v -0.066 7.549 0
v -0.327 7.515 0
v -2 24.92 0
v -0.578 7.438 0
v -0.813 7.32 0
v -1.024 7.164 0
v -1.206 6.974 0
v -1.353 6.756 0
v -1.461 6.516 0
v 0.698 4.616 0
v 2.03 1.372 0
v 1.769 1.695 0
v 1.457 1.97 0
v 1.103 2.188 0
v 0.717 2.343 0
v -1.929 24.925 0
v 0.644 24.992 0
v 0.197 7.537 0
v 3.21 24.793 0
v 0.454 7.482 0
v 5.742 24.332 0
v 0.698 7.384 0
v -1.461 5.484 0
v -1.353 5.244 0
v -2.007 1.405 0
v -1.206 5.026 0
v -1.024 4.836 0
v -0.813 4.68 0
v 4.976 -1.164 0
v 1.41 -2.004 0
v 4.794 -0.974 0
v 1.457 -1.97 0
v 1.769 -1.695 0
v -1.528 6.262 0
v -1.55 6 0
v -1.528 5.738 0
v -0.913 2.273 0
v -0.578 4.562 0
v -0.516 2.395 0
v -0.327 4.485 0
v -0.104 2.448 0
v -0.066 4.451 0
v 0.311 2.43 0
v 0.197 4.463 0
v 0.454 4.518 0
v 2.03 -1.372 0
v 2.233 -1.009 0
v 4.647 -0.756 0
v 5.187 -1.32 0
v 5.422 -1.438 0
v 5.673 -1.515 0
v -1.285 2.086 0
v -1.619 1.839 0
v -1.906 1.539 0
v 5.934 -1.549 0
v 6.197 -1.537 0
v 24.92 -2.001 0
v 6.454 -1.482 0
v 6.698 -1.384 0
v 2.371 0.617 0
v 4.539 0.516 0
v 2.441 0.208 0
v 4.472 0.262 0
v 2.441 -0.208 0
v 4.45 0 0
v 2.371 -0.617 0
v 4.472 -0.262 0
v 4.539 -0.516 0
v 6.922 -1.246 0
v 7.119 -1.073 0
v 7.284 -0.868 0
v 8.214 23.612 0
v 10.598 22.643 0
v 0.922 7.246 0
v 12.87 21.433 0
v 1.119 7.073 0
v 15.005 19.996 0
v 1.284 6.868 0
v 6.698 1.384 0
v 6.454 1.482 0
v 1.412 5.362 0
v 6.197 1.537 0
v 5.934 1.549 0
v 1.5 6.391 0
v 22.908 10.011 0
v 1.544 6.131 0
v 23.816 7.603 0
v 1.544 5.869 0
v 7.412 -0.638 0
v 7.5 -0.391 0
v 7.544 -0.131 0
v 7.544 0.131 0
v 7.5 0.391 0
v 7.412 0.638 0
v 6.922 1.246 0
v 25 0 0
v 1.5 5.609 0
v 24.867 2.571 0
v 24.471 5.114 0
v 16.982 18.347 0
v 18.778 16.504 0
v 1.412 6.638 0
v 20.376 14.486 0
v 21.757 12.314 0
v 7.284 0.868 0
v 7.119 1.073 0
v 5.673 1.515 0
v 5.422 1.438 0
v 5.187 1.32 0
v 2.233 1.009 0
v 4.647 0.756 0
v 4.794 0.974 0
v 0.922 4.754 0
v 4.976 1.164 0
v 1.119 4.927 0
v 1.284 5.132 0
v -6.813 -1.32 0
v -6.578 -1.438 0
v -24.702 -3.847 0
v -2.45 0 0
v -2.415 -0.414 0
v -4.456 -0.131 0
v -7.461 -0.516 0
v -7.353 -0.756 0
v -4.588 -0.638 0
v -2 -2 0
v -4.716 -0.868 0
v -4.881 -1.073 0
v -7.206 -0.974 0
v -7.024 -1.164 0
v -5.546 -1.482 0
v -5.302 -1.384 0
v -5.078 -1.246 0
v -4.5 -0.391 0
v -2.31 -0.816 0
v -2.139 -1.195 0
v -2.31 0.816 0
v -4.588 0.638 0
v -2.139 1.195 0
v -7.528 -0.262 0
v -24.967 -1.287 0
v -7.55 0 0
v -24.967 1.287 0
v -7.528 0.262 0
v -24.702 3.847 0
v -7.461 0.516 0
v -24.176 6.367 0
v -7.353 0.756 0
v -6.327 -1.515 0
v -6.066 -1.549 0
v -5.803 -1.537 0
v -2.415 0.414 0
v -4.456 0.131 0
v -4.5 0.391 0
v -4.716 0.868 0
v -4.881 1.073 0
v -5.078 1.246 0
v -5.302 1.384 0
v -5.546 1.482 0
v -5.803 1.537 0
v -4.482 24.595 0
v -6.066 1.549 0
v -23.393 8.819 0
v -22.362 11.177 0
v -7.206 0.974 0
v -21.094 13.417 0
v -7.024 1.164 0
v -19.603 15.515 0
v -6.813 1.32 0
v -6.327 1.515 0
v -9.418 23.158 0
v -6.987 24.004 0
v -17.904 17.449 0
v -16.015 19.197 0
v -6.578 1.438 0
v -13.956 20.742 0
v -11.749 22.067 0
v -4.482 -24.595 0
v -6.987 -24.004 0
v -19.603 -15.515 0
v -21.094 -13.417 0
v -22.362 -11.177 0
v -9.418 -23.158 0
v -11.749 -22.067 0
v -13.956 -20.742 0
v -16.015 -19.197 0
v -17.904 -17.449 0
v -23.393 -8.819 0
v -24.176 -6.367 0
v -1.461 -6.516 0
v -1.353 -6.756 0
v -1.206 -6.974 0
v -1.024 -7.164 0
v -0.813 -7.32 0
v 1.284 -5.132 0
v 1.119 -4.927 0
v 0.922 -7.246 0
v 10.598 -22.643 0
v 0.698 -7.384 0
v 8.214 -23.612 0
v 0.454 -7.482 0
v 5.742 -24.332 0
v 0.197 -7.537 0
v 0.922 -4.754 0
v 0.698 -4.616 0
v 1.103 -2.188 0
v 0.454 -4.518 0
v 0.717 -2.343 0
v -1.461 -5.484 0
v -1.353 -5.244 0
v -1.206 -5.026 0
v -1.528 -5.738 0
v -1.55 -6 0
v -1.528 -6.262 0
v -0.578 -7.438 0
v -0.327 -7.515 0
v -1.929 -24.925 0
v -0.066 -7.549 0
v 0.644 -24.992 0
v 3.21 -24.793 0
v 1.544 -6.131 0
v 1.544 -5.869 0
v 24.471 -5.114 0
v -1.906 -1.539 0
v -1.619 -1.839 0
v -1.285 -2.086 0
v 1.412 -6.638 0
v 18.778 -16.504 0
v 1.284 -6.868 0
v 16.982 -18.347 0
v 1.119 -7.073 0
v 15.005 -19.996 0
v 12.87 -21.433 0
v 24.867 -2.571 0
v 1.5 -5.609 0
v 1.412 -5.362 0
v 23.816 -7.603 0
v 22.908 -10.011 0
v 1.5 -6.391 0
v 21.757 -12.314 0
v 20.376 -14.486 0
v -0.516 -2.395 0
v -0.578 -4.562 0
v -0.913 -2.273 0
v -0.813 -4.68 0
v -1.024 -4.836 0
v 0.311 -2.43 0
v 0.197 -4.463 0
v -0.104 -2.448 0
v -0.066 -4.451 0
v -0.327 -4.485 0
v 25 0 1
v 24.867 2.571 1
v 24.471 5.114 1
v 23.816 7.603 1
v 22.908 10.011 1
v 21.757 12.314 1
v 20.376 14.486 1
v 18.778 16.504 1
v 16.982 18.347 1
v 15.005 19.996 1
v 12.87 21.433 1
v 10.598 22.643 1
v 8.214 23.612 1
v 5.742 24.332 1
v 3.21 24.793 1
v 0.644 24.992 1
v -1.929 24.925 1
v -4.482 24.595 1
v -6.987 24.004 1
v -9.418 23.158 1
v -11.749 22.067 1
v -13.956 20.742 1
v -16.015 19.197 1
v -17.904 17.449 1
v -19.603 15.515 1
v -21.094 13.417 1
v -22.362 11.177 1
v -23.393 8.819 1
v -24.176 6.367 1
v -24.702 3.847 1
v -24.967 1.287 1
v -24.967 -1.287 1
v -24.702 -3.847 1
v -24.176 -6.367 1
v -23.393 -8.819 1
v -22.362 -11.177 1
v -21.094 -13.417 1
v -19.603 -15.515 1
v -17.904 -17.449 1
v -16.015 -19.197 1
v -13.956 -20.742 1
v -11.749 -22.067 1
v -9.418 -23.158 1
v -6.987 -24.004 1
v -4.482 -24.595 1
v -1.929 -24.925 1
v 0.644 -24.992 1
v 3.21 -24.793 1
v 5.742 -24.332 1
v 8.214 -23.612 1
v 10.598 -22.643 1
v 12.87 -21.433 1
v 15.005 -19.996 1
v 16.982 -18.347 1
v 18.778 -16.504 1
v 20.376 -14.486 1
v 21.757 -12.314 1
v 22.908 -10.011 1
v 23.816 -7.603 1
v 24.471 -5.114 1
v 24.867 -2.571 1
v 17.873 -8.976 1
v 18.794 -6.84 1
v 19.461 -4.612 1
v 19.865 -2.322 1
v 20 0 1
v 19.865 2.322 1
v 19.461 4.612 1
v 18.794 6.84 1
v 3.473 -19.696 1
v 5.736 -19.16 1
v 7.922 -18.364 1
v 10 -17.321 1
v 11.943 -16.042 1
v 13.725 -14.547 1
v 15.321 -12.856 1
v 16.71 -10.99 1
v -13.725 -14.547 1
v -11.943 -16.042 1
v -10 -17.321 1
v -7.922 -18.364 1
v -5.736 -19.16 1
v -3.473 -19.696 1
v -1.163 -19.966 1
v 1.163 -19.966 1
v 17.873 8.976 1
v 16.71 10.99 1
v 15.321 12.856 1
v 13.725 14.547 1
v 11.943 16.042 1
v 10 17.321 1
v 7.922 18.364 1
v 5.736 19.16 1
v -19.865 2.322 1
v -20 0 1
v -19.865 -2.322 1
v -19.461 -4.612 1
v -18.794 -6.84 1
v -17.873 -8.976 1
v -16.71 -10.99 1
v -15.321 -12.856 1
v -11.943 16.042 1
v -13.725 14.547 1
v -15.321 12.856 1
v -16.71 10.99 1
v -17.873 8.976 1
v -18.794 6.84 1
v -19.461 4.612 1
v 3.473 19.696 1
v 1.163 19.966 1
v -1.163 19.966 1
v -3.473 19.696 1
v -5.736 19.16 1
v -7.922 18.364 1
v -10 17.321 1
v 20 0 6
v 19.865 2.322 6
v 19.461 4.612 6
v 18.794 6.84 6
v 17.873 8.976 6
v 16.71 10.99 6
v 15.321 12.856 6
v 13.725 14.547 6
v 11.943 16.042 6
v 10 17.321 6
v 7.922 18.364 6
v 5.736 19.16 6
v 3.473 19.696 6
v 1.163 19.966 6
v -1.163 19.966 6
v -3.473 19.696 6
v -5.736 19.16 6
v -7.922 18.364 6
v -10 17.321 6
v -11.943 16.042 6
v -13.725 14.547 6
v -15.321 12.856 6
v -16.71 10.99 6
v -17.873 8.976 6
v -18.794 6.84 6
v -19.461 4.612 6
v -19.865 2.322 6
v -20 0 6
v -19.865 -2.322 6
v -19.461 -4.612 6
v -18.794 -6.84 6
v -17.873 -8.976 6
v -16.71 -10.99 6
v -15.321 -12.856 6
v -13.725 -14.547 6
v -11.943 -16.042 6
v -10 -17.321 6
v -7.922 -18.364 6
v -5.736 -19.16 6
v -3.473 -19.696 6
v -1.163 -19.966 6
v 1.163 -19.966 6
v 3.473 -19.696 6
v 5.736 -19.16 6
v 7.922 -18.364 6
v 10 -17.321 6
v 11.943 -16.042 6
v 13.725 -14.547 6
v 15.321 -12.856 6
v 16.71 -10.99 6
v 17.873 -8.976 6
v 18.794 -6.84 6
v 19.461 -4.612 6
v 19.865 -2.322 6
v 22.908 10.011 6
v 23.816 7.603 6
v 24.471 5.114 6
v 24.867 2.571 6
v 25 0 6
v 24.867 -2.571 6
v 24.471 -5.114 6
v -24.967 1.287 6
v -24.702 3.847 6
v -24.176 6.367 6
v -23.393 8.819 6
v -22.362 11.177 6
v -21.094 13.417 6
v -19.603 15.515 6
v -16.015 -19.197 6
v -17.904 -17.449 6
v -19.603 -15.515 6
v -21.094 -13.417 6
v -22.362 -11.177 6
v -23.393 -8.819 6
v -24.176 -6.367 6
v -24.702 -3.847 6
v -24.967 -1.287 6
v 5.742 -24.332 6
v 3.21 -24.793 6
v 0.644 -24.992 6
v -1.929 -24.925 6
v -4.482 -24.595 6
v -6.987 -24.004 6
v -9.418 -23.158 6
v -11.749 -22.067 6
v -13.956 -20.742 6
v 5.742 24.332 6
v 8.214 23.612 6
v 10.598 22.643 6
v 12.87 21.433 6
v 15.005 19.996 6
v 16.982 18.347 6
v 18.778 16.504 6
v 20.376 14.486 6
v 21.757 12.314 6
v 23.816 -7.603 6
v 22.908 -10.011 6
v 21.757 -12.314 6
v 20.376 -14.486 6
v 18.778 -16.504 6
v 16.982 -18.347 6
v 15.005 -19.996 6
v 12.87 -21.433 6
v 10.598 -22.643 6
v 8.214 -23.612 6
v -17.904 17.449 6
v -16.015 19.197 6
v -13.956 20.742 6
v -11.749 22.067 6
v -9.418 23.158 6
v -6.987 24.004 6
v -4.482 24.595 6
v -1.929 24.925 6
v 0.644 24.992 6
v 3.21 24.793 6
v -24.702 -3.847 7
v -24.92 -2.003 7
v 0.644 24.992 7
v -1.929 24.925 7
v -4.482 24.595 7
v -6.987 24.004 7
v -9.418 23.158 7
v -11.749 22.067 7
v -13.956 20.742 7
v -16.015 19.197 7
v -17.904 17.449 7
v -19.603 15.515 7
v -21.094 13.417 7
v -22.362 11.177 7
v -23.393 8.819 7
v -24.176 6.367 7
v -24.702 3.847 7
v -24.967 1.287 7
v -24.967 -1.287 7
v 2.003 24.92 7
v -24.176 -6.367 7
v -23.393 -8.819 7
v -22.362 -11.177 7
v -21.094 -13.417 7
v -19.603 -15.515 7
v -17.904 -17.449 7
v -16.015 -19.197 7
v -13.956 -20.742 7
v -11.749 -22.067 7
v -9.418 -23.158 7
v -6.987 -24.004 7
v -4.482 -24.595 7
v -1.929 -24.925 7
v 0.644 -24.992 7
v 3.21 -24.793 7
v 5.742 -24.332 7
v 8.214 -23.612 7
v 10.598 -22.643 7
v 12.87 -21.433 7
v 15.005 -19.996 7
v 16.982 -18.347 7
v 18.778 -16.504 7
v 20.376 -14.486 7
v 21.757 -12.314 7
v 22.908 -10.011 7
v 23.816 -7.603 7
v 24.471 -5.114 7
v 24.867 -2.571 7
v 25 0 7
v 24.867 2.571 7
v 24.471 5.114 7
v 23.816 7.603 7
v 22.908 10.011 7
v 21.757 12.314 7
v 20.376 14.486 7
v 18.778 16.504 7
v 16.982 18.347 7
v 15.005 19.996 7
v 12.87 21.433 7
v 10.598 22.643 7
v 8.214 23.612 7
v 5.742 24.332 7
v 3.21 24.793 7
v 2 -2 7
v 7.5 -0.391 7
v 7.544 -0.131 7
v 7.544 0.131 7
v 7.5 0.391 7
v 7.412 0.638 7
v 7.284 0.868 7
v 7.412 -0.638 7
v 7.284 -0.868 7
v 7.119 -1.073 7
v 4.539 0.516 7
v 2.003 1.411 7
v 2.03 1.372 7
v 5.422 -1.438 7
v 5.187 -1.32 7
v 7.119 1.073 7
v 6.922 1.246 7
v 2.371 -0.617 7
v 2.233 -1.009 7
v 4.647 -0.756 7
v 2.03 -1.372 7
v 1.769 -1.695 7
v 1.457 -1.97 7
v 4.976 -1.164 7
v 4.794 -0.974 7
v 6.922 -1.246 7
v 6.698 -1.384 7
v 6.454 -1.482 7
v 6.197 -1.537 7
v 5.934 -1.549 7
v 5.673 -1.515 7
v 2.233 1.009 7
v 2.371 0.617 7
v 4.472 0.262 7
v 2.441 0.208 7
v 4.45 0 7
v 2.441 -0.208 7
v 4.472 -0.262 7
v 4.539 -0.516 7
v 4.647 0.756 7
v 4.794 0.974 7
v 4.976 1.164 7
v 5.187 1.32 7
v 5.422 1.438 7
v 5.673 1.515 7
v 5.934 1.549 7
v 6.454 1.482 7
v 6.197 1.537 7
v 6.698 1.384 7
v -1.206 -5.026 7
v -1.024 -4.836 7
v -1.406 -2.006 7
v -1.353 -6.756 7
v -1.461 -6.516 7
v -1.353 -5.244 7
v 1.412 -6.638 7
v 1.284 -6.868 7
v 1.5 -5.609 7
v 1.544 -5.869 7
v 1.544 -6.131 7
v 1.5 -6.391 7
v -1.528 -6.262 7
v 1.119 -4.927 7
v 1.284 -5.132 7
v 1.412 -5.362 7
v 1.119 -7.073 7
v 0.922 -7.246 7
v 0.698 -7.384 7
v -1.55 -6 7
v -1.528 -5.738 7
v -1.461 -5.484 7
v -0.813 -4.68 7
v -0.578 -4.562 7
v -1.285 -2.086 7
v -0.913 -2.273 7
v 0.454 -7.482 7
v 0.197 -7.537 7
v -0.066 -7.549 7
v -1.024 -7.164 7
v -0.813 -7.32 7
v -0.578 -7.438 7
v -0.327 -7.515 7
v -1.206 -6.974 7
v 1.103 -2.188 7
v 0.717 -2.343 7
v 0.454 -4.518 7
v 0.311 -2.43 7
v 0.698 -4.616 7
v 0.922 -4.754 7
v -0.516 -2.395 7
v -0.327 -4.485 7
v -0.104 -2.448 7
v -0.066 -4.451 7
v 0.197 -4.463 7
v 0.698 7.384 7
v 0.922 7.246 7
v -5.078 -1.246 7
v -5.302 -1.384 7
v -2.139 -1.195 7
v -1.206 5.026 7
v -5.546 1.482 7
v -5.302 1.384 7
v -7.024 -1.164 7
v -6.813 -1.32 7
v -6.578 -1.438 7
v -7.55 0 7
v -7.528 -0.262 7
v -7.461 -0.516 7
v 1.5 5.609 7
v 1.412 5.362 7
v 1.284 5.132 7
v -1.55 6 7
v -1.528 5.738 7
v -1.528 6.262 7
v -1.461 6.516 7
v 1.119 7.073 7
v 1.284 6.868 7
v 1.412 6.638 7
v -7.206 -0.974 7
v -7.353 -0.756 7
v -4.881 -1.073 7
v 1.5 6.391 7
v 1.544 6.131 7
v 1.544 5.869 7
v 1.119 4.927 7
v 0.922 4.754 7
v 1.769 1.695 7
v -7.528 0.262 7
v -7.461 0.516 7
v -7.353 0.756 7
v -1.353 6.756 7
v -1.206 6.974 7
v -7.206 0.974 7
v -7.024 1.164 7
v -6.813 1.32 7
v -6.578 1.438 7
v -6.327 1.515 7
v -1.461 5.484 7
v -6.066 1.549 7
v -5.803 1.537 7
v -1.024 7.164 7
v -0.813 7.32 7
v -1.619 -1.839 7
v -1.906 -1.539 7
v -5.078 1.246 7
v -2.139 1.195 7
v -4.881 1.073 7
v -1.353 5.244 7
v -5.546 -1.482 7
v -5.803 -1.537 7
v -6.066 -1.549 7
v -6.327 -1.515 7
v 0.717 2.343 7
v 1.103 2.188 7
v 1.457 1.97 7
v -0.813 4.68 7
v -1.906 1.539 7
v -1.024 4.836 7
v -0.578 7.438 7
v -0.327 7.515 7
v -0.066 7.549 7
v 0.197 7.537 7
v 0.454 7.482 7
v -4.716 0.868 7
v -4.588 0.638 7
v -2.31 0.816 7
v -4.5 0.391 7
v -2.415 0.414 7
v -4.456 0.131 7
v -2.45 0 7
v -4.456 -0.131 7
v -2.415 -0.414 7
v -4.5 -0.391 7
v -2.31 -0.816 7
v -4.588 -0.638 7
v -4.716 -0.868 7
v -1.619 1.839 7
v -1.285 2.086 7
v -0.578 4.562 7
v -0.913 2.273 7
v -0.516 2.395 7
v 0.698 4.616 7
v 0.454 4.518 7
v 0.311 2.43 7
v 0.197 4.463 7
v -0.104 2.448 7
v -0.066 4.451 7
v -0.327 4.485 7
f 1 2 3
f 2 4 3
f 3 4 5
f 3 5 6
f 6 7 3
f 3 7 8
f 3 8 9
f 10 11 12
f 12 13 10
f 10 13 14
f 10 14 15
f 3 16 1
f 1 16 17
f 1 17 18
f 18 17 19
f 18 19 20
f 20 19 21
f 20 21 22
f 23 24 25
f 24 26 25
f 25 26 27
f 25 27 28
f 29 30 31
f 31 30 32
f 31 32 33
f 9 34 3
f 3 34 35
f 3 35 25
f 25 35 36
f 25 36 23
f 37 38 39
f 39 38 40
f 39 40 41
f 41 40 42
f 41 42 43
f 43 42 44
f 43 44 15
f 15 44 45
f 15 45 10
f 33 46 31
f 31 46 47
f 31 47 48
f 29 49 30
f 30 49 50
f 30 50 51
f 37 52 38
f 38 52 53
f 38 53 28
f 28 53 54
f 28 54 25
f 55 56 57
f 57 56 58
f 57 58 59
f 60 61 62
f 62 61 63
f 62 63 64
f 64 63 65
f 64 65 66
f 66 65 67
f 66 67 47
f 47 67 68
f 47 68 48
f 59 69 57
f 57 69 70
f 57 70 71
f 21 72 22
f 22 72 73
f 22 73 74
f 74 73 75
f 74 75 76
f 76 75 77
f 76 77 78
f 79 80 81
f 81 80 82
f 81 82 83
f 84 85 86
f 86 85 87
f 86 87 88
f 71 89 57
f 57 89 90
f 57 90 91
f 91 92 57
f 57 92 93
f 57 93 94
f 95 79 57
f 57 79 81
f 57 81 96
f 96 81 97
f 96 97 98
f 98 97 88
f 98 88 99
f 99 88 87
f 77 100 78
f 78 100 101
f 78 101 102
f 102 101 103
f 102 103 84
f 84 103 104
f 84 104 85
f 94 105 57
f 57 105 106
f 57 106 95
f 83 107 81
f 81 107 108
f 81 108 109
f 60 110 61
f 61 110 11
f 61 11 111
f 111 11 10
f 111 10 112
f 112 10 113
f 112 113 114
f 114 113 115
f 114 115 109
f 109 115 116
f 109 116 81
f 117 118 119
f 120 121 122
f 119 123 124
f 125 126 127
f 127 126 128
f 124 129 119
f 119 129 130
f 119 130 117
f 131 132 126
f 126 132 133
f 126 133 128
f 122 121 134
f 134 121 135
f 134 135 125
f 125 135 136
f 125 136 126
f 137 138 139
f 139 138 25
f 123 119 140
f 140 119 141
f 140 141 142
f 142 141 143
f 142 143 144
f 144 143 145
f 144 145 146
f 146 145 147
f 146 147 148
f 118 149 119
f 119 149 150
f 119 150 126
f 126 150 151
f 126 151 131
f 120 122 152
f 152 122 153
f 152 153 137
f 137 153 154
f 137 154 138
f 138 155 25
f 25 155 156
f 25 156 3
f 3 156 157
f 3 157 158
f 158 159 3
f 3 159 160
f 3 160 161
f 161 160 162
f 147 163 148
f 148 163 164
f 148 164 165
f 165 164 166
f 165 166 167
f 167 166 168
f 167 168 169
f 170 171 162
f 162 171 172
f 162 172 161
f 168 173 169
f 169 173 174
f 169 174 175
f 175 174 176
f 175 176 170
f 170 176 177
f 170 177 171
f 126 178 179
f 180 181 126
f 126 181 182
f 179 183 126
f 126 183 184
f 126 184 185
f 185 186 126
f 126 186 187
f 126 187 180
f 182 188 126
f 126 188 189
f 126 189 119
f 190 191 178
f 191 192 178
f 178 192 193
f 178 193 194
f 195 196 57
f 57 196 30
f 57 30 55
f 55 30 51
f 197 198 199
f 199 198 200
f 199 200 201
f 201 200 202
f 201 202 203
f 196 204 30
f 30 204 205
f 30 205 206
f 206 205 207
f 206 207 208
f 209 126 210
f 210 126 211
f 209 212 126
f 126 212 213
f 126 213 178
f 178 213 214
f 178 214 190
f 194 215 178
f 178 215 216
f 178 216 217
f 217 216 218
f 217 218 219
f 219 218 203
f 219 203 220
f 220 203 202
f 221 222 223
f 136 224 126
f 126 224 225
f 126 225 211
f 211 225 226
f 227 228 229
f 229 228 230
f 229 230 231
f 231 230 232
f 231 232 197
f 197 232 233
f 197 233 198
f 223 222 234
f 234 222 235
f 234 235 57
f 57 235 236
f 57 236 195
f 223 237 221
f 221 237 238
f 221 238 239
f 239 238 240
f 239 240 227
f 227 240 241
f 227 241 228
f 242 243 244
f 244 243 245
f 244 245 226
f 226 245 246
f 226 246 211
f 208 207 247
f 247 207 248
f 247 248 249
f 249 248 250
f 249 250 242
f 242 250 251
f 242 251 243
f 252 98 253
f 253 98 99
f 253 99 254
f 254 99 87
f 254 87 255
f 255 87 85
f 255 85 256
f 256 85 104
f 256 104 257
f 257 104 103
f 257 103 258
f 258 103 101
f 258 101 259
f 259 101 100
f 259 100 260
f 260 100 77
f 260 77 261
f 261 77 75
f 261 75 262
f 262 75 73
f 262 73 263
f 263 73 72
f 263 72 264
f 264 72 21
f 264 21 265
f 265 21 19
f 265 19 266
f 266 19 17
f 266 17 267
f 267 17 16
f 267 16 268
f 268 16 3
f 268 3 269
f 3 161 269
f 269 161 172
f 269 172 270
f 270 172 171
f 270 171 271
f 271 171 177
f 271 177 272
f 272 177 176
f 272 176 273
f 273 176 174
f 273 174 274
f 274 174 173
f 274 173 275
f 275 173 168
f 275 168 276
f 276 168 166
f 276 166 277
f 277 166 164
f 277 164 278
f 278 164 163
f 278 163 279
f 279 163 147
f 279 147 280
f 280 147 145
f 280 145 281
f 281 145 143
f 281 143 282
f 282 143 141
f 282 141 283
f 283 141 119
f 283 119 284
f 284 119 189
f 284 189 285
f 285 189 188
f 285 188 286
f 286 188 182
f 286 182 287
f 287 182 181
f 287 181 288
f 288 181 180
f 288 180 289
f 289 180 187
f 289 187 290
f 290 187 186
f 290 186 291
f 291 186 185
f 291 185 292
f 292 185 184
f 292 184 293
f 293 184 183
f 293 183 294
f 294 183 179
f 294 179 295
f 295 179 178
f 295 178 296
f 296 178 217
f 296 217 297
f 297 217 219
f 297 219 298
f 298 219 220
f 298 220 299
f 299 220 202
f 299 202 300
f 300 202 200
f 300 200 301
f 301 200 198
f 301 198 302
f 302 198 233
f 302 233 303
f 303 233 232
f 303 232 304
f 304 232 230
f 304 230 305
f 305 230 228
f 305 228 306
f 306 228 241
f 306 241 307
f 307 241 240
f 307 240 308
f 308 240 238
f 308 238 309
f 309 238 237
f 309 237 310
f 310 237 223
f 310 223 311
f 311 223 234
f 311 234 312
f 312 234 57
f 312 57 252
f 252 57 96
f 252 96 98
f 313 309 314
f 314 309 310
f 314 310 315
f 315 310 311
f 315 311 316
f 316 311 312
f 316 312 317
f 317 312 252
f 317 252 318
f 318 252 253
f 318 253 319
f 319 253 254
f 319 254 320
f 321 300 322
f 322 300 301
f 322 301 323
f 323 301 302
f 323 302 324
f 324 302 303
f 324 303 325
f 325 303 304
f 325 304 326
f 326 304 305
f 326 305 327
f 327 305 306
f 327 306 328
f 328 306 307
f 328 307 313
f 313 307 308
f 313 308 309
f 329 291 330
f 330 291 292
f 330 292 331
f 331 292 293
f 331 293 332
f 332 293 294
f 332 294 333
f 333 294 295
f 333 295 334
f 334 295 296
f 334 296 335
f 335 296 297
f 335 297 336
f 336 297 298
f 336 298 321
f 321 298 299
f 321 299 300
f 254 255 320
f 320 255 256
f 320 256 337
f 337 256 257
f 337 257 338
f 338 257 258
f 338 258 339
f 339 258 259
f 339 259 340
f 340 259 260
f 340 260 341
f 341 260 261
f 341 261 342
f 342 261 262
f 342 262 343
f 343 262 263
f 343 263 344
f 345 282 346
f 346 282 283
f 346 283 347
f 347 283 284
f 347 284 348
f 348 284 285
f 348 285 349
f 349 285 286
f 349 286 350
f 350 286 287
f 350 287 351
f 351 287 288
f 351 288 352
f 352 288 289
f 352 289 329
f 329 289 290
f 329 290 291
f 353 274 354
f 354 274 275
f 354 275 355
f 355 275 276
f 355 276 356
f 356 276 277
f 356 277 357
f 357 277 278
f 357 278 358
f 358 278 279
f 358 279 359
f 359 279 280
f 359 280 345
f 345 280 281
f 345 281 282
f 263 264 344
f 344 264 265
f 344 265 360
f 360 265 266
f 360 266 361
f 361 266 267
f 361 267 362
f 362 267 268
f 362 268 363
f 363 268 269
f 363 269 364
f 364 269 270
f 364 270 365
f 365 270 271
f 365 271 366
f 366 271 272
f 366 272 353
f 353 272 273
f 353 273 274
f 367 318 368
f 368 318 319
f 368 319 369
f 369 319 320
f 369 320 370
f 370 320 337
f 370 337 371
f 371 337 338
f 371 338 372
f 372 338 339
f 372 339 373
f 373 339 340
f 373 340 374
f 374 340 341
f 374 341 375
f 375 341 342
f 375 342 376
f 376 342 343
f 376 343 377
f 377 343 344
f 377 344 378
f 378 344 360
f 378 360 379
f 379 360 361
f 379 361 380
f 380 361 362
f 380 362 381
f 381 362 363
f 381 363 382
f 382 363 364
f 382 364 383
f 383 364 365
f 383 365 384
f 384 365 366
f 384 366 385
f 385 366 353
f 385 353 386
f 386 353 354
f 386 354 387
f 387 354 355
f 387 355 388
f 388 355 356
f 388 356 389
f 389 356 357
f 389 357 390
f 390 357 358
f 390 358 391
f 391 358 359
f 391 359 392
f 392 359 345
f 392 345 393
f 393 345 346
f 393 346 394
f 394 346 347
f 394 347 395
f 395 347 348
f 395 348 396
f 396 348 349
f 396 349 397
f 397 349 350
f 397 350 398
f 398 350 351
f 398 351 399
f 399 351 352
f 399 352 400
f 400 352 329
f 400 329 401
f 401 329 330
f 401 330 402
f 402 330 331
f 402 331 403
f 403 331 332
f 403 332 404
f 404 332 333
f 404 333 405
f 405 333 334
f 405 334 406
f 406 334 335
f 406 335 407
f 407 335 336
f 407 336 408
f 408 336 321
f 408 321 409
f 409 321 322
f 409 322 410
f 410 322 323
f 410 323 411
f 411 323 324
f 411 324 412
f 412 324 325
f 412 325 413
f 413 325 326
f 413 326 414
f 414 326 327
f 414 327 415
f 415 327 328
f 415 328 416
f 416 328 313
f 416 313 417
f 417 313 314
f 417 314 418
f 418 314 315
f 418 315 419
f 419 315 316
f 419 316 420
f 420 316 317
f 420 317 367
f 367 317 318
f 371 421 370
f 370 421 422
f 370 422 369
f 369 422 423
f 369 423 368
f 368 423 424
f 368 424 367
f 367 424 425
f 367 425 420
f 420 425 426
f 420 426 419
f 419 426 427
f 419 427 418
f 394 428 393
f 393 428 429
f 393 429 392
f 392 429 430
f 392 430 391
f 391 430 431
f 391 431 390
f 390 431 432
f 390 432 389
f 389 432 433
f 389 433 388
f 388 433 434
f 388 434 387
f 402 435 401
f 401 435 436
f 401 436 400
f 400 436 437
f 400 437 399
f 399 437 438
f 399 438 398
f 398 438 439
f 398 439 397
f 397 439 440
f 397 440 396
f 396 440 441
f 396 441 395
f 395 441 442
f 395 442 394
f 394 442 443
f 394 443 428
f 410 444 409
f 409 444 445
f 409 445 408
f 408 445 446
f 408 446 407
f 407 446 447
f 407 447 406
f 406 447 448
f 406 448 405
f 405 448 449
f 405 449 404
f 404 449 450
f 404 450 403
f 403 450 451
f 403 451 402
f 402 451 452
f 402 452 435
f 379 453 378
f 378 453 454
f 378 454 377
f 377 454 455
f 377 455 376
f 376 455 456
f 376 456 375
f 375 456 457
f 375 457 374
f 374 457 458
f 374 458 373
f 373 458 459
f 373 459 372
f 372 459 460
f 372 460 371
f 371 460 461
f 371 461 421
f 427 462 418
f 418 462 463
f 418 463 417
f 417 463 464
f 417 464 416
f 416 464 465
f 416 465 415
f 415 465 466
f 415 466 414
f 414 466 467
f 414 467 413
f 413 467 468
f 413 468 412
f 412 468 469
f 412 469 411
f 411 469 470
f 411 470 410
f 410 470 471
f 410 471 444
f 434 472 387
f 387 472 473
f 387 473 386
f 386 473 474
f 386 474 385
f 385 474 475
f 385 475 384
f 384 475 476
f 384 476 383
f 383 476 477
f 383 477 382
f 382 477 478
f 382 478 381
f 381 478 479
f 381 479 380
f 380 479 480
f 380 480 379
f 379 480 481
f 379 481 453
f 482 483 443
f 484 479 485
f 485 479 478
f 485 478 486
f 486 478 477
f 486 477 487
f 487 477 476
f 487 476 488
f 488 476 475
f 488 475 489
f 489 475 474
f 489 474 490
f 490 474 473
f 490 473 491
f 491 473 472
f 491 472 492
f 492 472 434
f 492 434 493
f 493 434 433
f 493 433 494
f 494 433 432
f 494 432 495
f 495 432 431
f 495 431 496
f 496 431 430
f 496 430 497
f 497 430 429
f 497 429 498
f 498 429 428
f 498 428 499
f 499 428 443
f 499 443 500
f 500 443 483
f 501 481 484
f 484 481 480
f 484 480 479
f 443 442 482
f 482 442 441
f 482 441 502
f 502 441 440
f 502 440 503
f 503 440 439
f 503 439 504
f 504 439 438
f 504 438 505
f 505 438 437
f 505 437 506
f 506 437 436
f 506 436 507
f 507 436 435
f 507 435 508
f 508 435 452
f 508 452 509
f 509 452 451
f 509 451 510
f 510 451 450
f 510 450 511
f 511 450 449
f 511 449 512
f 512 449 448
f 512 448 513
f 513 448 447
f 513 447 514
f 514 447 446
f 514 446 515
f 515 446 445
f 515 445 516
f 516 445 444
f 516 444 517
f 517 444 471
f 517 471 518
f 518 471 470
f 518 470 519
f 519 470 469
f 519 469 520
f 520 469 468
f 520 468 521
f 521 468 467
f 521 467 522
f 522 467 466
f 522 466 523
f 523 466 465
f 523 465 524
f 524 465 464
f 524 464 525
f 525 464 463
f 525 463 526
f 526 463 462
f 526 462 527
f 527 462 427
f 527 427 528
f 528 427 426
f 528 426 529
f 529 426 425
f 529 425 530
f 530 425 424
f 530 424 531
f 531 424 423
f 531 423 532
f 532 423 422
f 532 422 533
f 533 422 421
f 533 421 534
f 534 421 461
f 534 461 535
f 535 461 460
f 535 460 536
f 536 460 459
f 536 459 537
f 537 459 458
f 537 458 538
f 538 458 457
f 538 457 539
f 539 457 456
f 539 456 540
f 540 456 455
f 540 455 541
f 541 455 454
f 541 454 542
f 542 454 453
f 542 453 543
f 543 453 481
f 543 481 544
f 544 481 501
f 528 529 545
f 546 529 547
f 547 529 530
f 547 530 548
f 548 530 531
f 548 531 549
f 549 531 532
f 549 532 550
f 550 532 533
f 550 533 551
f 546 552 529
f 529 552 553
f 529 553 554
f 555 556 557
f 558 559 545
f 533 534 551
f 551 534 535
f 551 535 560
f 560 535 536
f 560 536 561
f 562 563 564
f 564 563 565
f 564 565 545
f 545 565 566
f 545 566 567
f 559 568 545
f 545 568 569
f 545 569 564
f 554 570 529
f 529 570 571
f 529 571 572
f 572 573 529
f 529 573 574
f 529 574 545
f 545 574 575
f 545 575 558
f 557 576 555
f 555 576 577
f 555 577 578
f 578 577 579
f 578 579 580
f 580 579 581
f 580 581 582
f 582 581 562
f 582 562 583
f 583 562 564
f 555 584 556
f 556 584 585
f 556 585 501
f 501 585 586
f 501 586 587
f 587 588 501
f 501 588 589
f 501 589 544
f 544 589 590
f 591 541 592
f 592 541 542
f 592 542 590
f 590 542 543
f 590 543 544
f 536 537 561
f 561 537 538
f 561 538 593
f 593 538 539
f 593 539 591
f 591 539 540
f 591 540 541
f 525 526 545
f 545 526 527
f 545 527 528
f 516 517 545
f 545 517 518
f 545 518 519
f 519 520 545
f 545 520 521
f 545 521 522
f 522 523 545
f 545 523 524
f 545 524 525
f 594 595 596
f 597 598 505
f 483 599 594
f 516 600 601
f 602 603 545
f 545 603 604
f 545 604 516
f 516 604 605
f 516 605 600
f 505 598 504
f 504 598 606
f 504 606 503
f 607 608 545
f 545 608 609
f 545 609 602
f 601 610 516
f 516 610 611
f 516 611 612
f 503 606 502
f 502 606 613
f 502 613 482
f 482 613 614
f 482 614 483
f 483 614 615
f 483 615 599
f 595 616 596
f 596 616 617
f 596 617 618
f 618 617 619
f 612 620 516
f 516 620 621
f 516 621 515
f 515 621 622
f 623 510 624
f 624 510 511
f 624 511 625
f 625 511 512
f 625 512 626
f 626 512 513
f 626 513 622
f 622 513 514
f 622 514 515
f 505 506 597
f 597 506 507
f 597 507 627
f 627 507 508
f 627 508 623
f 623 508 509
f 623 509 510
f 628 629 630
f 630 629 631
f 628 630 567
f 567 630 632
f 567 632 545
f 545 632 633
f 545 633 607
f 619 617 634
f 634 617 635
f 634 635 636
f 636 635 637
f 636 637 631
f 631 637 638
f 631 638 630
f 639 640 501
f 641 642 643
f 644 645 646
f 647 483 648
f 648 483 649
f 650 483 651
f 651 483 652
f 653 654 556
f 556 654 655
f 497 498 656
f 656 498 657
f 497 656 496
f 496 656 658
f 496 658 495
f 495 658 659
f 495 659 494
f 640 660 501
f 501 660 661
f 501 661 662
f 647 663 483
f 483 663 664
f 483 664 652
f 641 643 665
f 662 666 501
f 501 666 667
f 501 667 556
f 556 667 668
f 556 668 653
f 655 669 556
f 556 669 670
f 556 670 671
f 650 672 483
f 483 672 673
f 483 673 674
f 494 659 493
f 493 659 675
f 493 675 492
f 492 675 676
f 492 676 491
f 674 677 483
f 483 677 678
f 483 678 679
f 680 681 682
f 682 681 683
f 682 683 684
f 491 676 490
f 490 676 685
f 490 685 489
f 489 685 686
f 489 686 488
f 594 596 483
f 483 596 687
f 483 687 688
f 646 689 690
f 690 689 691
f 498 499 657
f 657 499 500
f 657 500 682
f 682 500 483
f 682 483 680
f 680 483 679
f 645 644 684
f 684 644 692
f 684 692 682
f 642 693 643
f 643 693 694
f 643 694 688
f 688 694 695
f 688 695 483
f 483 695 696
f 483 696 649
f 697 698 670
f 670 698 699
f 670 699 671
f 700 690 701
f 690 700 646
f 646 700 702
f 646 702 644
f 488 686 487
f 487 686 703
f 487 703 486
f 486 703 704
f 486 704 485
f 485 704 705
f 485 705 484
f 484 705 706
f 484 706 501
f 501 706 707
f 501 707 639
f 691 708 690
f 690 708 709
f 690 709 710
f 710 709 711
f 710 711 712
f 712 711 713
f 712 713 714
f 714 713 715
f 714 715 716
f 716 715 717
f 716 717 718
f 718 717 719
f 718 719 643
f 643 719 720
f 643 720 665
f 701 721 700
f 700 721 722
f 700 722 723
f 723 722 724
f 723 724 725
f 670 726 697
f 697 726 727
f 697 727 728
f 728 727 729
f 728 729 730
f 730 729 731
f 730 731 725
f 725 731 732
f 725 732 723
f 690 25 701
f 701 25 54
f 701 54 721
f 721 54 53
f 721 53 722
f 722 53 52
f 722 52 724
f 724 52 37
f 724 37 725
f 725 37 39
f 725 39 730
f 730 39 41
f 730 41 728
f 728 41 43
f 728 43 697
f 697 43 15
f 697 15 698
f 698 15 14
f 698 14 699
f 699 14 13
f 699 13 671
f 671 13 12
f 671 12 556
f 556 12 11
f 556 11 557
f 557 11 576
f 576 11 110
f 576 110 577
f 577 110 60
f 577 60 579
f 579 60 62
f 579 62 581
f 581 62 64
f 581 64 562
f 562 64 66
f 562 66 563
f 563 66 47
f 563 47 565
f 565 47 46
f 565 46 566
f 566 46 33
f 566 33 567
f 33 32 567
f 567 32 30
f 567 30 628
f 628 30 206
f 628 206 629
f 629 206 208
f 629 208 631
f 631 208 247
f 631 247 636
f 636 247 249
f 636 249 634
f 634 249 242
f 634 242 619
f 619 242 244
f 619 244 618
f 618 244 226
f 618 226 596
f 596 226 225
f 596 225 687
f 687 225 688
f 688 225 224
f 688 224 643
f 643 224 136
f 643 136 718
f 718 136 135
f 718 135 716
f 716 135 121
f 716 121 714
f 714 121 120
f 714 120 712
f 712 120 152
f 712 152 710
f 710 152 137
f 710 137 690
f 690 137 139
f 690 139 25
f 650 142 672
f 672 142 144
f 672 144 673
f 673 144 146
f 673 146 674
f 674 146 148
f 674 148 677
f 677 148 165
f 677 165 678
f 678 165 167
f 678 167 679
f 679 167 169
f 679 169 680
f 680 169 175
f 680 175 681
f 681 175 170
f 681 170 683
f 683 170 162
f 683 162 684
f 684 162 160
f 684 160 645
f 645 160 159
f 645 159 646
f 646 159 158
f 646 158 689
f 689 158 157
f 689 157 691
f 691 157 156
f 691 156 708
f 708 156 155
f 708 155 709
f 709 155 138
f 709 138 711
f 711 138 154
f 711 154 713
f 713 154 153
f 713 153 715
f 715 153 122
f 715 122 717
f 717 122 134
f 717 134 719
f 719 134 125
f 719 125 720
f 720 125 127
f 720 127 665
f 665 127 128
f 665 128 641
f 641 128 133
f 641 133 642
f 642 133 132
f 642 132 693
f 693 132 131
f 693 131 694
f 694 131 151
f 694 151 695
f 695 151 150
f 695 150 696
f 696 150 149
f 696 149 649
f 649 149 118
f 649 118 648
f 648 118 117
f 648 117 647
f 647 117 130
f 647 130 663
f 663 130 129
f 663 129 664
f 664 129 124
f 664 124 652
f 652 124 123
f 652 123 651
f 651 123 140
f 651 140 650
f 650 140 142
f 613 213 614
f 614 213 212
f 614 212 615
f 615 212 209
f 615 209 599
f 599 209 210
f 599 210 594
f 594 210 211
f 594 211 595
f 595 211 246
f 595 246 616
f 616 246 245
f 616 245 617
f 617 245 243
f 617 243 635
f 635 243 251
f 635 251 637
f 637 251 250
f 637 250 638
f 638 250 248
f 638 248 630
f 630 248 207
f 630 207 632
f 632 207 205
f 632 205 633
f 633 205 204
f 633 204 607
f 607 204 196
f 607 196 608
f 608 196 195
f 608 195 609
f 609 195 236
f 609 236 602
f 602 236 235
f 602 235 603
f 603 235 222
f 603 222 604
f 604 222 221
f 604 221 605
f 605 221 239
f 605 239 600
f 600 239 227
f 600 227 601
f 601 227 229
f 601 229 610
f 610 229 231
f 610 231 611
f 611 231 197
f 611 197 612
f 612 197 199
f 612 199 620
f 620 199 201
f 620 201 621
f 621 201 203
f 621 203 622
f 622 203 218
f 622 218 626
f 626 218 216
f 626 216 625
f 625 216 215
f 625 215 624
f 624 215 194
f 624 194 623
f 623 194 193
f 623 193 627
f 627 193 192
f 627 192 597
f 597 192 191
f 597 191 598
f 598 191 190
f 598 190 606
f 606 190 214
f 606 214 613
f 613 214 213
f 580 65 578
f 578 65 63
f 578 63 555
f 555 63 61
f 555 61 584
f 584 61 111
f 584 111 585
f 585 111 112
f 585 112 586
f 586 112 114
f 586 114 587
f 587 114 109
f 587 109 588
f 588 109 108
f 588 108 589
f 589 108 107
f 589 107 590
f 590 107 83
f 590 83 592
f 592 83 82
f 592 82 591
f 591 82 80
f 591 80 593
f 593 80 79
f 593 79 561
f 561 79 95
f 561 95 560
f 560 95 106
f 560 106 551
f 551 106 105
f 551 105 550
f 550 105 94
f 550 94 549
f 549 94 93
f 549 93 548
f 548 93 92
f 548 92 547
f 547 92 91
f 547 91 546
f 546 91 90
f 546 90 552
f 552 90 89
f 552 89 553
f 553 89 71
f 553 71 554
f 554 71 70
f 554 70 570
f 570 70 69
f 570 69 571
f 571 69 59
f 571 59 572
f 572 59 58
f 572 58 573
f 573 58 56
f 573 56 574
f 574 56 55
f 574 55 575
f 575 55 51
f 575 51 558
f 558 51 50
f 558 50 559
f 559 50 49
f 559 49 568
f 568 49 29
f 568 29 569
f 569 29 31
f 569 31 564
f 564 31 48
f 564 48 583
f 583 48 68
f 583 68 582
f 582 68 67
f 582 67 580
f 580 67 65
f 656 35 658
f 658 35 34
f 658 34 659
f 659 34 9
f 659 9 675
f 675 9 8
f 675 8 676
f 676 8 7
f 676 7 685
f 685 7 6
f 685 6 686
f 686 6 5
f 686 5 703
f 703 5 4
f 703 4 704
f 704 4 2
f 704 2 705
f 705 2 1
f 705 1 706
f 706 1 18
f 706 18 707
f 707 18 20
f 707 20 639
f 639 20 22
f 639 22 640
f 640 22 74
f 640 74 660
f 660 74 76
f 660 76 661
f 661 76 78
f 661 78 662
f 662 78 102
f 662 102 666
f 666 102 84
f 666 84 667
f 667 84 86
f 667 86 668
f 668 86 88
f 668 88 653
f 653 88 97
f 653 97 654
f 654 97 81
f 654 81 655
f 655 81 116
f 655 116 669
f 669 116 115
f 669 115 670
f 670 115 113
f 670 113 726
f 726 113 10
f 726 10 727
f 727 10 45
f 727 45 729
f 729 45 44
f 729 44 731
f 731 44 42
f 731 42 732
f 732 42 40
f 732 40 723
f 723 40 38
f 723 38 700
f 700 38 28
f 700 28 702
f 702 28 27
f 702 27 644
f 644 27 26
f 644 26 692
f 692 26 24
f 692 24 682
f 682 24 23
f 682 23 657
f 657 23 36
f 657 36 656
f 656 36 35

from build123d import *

# Parameters (mm, degrees)
SKETCH4_R          = 1.55
SKETCH4_R_2        = 2.45
CUT_EXTRUDE1_DEPTH = 37.041642582


with BuildPart() as part:
    # Sketch3 → Revolve2 (revolve)
    with BuildSketch(Plane(origin=(0, 0, 0), x_dir=(1, 0, 0), z_dir=(0, 1, 0)), mode=Mode.PRIVATE) as revolve2_sk:
        Polygon((0, 0), (-25, 0), (-25, -1), (-20, -1), (-20, -6), (-25, -6), (-25, -7), (0, -7), align=None)
    revolve(revolve2_sk.sketch.rotate(Axis((0, 0, 7), (0, 0, -1)), 180), axis=Axis((0, 0, 7), (0, 0, -1)))

    # Sketch4 → Cut-Extrude1 (cut, through all)
    with BuildSketch(Plane(origin=(0, 0, 0), x_dir=(-1, 0, 0), z_dir=(0, 0, -1))):
        with Locations((0, 6)):
            Circle(SKETCH4_R)
        with Locations((6, 0)):
            Circle(SKETCH4_R)
        with Locations((0, -6)):
            Circle(SKETCH4_R)
        with Locations((-6, 0)):
            Circle(SKETCH4_R)
        Circle(SKETCH4_R_2)
    extrude(amount=-CUT_EXTRUDE1_DEPTH, mode=Mode.SUBTRACT)


solid = part.part
